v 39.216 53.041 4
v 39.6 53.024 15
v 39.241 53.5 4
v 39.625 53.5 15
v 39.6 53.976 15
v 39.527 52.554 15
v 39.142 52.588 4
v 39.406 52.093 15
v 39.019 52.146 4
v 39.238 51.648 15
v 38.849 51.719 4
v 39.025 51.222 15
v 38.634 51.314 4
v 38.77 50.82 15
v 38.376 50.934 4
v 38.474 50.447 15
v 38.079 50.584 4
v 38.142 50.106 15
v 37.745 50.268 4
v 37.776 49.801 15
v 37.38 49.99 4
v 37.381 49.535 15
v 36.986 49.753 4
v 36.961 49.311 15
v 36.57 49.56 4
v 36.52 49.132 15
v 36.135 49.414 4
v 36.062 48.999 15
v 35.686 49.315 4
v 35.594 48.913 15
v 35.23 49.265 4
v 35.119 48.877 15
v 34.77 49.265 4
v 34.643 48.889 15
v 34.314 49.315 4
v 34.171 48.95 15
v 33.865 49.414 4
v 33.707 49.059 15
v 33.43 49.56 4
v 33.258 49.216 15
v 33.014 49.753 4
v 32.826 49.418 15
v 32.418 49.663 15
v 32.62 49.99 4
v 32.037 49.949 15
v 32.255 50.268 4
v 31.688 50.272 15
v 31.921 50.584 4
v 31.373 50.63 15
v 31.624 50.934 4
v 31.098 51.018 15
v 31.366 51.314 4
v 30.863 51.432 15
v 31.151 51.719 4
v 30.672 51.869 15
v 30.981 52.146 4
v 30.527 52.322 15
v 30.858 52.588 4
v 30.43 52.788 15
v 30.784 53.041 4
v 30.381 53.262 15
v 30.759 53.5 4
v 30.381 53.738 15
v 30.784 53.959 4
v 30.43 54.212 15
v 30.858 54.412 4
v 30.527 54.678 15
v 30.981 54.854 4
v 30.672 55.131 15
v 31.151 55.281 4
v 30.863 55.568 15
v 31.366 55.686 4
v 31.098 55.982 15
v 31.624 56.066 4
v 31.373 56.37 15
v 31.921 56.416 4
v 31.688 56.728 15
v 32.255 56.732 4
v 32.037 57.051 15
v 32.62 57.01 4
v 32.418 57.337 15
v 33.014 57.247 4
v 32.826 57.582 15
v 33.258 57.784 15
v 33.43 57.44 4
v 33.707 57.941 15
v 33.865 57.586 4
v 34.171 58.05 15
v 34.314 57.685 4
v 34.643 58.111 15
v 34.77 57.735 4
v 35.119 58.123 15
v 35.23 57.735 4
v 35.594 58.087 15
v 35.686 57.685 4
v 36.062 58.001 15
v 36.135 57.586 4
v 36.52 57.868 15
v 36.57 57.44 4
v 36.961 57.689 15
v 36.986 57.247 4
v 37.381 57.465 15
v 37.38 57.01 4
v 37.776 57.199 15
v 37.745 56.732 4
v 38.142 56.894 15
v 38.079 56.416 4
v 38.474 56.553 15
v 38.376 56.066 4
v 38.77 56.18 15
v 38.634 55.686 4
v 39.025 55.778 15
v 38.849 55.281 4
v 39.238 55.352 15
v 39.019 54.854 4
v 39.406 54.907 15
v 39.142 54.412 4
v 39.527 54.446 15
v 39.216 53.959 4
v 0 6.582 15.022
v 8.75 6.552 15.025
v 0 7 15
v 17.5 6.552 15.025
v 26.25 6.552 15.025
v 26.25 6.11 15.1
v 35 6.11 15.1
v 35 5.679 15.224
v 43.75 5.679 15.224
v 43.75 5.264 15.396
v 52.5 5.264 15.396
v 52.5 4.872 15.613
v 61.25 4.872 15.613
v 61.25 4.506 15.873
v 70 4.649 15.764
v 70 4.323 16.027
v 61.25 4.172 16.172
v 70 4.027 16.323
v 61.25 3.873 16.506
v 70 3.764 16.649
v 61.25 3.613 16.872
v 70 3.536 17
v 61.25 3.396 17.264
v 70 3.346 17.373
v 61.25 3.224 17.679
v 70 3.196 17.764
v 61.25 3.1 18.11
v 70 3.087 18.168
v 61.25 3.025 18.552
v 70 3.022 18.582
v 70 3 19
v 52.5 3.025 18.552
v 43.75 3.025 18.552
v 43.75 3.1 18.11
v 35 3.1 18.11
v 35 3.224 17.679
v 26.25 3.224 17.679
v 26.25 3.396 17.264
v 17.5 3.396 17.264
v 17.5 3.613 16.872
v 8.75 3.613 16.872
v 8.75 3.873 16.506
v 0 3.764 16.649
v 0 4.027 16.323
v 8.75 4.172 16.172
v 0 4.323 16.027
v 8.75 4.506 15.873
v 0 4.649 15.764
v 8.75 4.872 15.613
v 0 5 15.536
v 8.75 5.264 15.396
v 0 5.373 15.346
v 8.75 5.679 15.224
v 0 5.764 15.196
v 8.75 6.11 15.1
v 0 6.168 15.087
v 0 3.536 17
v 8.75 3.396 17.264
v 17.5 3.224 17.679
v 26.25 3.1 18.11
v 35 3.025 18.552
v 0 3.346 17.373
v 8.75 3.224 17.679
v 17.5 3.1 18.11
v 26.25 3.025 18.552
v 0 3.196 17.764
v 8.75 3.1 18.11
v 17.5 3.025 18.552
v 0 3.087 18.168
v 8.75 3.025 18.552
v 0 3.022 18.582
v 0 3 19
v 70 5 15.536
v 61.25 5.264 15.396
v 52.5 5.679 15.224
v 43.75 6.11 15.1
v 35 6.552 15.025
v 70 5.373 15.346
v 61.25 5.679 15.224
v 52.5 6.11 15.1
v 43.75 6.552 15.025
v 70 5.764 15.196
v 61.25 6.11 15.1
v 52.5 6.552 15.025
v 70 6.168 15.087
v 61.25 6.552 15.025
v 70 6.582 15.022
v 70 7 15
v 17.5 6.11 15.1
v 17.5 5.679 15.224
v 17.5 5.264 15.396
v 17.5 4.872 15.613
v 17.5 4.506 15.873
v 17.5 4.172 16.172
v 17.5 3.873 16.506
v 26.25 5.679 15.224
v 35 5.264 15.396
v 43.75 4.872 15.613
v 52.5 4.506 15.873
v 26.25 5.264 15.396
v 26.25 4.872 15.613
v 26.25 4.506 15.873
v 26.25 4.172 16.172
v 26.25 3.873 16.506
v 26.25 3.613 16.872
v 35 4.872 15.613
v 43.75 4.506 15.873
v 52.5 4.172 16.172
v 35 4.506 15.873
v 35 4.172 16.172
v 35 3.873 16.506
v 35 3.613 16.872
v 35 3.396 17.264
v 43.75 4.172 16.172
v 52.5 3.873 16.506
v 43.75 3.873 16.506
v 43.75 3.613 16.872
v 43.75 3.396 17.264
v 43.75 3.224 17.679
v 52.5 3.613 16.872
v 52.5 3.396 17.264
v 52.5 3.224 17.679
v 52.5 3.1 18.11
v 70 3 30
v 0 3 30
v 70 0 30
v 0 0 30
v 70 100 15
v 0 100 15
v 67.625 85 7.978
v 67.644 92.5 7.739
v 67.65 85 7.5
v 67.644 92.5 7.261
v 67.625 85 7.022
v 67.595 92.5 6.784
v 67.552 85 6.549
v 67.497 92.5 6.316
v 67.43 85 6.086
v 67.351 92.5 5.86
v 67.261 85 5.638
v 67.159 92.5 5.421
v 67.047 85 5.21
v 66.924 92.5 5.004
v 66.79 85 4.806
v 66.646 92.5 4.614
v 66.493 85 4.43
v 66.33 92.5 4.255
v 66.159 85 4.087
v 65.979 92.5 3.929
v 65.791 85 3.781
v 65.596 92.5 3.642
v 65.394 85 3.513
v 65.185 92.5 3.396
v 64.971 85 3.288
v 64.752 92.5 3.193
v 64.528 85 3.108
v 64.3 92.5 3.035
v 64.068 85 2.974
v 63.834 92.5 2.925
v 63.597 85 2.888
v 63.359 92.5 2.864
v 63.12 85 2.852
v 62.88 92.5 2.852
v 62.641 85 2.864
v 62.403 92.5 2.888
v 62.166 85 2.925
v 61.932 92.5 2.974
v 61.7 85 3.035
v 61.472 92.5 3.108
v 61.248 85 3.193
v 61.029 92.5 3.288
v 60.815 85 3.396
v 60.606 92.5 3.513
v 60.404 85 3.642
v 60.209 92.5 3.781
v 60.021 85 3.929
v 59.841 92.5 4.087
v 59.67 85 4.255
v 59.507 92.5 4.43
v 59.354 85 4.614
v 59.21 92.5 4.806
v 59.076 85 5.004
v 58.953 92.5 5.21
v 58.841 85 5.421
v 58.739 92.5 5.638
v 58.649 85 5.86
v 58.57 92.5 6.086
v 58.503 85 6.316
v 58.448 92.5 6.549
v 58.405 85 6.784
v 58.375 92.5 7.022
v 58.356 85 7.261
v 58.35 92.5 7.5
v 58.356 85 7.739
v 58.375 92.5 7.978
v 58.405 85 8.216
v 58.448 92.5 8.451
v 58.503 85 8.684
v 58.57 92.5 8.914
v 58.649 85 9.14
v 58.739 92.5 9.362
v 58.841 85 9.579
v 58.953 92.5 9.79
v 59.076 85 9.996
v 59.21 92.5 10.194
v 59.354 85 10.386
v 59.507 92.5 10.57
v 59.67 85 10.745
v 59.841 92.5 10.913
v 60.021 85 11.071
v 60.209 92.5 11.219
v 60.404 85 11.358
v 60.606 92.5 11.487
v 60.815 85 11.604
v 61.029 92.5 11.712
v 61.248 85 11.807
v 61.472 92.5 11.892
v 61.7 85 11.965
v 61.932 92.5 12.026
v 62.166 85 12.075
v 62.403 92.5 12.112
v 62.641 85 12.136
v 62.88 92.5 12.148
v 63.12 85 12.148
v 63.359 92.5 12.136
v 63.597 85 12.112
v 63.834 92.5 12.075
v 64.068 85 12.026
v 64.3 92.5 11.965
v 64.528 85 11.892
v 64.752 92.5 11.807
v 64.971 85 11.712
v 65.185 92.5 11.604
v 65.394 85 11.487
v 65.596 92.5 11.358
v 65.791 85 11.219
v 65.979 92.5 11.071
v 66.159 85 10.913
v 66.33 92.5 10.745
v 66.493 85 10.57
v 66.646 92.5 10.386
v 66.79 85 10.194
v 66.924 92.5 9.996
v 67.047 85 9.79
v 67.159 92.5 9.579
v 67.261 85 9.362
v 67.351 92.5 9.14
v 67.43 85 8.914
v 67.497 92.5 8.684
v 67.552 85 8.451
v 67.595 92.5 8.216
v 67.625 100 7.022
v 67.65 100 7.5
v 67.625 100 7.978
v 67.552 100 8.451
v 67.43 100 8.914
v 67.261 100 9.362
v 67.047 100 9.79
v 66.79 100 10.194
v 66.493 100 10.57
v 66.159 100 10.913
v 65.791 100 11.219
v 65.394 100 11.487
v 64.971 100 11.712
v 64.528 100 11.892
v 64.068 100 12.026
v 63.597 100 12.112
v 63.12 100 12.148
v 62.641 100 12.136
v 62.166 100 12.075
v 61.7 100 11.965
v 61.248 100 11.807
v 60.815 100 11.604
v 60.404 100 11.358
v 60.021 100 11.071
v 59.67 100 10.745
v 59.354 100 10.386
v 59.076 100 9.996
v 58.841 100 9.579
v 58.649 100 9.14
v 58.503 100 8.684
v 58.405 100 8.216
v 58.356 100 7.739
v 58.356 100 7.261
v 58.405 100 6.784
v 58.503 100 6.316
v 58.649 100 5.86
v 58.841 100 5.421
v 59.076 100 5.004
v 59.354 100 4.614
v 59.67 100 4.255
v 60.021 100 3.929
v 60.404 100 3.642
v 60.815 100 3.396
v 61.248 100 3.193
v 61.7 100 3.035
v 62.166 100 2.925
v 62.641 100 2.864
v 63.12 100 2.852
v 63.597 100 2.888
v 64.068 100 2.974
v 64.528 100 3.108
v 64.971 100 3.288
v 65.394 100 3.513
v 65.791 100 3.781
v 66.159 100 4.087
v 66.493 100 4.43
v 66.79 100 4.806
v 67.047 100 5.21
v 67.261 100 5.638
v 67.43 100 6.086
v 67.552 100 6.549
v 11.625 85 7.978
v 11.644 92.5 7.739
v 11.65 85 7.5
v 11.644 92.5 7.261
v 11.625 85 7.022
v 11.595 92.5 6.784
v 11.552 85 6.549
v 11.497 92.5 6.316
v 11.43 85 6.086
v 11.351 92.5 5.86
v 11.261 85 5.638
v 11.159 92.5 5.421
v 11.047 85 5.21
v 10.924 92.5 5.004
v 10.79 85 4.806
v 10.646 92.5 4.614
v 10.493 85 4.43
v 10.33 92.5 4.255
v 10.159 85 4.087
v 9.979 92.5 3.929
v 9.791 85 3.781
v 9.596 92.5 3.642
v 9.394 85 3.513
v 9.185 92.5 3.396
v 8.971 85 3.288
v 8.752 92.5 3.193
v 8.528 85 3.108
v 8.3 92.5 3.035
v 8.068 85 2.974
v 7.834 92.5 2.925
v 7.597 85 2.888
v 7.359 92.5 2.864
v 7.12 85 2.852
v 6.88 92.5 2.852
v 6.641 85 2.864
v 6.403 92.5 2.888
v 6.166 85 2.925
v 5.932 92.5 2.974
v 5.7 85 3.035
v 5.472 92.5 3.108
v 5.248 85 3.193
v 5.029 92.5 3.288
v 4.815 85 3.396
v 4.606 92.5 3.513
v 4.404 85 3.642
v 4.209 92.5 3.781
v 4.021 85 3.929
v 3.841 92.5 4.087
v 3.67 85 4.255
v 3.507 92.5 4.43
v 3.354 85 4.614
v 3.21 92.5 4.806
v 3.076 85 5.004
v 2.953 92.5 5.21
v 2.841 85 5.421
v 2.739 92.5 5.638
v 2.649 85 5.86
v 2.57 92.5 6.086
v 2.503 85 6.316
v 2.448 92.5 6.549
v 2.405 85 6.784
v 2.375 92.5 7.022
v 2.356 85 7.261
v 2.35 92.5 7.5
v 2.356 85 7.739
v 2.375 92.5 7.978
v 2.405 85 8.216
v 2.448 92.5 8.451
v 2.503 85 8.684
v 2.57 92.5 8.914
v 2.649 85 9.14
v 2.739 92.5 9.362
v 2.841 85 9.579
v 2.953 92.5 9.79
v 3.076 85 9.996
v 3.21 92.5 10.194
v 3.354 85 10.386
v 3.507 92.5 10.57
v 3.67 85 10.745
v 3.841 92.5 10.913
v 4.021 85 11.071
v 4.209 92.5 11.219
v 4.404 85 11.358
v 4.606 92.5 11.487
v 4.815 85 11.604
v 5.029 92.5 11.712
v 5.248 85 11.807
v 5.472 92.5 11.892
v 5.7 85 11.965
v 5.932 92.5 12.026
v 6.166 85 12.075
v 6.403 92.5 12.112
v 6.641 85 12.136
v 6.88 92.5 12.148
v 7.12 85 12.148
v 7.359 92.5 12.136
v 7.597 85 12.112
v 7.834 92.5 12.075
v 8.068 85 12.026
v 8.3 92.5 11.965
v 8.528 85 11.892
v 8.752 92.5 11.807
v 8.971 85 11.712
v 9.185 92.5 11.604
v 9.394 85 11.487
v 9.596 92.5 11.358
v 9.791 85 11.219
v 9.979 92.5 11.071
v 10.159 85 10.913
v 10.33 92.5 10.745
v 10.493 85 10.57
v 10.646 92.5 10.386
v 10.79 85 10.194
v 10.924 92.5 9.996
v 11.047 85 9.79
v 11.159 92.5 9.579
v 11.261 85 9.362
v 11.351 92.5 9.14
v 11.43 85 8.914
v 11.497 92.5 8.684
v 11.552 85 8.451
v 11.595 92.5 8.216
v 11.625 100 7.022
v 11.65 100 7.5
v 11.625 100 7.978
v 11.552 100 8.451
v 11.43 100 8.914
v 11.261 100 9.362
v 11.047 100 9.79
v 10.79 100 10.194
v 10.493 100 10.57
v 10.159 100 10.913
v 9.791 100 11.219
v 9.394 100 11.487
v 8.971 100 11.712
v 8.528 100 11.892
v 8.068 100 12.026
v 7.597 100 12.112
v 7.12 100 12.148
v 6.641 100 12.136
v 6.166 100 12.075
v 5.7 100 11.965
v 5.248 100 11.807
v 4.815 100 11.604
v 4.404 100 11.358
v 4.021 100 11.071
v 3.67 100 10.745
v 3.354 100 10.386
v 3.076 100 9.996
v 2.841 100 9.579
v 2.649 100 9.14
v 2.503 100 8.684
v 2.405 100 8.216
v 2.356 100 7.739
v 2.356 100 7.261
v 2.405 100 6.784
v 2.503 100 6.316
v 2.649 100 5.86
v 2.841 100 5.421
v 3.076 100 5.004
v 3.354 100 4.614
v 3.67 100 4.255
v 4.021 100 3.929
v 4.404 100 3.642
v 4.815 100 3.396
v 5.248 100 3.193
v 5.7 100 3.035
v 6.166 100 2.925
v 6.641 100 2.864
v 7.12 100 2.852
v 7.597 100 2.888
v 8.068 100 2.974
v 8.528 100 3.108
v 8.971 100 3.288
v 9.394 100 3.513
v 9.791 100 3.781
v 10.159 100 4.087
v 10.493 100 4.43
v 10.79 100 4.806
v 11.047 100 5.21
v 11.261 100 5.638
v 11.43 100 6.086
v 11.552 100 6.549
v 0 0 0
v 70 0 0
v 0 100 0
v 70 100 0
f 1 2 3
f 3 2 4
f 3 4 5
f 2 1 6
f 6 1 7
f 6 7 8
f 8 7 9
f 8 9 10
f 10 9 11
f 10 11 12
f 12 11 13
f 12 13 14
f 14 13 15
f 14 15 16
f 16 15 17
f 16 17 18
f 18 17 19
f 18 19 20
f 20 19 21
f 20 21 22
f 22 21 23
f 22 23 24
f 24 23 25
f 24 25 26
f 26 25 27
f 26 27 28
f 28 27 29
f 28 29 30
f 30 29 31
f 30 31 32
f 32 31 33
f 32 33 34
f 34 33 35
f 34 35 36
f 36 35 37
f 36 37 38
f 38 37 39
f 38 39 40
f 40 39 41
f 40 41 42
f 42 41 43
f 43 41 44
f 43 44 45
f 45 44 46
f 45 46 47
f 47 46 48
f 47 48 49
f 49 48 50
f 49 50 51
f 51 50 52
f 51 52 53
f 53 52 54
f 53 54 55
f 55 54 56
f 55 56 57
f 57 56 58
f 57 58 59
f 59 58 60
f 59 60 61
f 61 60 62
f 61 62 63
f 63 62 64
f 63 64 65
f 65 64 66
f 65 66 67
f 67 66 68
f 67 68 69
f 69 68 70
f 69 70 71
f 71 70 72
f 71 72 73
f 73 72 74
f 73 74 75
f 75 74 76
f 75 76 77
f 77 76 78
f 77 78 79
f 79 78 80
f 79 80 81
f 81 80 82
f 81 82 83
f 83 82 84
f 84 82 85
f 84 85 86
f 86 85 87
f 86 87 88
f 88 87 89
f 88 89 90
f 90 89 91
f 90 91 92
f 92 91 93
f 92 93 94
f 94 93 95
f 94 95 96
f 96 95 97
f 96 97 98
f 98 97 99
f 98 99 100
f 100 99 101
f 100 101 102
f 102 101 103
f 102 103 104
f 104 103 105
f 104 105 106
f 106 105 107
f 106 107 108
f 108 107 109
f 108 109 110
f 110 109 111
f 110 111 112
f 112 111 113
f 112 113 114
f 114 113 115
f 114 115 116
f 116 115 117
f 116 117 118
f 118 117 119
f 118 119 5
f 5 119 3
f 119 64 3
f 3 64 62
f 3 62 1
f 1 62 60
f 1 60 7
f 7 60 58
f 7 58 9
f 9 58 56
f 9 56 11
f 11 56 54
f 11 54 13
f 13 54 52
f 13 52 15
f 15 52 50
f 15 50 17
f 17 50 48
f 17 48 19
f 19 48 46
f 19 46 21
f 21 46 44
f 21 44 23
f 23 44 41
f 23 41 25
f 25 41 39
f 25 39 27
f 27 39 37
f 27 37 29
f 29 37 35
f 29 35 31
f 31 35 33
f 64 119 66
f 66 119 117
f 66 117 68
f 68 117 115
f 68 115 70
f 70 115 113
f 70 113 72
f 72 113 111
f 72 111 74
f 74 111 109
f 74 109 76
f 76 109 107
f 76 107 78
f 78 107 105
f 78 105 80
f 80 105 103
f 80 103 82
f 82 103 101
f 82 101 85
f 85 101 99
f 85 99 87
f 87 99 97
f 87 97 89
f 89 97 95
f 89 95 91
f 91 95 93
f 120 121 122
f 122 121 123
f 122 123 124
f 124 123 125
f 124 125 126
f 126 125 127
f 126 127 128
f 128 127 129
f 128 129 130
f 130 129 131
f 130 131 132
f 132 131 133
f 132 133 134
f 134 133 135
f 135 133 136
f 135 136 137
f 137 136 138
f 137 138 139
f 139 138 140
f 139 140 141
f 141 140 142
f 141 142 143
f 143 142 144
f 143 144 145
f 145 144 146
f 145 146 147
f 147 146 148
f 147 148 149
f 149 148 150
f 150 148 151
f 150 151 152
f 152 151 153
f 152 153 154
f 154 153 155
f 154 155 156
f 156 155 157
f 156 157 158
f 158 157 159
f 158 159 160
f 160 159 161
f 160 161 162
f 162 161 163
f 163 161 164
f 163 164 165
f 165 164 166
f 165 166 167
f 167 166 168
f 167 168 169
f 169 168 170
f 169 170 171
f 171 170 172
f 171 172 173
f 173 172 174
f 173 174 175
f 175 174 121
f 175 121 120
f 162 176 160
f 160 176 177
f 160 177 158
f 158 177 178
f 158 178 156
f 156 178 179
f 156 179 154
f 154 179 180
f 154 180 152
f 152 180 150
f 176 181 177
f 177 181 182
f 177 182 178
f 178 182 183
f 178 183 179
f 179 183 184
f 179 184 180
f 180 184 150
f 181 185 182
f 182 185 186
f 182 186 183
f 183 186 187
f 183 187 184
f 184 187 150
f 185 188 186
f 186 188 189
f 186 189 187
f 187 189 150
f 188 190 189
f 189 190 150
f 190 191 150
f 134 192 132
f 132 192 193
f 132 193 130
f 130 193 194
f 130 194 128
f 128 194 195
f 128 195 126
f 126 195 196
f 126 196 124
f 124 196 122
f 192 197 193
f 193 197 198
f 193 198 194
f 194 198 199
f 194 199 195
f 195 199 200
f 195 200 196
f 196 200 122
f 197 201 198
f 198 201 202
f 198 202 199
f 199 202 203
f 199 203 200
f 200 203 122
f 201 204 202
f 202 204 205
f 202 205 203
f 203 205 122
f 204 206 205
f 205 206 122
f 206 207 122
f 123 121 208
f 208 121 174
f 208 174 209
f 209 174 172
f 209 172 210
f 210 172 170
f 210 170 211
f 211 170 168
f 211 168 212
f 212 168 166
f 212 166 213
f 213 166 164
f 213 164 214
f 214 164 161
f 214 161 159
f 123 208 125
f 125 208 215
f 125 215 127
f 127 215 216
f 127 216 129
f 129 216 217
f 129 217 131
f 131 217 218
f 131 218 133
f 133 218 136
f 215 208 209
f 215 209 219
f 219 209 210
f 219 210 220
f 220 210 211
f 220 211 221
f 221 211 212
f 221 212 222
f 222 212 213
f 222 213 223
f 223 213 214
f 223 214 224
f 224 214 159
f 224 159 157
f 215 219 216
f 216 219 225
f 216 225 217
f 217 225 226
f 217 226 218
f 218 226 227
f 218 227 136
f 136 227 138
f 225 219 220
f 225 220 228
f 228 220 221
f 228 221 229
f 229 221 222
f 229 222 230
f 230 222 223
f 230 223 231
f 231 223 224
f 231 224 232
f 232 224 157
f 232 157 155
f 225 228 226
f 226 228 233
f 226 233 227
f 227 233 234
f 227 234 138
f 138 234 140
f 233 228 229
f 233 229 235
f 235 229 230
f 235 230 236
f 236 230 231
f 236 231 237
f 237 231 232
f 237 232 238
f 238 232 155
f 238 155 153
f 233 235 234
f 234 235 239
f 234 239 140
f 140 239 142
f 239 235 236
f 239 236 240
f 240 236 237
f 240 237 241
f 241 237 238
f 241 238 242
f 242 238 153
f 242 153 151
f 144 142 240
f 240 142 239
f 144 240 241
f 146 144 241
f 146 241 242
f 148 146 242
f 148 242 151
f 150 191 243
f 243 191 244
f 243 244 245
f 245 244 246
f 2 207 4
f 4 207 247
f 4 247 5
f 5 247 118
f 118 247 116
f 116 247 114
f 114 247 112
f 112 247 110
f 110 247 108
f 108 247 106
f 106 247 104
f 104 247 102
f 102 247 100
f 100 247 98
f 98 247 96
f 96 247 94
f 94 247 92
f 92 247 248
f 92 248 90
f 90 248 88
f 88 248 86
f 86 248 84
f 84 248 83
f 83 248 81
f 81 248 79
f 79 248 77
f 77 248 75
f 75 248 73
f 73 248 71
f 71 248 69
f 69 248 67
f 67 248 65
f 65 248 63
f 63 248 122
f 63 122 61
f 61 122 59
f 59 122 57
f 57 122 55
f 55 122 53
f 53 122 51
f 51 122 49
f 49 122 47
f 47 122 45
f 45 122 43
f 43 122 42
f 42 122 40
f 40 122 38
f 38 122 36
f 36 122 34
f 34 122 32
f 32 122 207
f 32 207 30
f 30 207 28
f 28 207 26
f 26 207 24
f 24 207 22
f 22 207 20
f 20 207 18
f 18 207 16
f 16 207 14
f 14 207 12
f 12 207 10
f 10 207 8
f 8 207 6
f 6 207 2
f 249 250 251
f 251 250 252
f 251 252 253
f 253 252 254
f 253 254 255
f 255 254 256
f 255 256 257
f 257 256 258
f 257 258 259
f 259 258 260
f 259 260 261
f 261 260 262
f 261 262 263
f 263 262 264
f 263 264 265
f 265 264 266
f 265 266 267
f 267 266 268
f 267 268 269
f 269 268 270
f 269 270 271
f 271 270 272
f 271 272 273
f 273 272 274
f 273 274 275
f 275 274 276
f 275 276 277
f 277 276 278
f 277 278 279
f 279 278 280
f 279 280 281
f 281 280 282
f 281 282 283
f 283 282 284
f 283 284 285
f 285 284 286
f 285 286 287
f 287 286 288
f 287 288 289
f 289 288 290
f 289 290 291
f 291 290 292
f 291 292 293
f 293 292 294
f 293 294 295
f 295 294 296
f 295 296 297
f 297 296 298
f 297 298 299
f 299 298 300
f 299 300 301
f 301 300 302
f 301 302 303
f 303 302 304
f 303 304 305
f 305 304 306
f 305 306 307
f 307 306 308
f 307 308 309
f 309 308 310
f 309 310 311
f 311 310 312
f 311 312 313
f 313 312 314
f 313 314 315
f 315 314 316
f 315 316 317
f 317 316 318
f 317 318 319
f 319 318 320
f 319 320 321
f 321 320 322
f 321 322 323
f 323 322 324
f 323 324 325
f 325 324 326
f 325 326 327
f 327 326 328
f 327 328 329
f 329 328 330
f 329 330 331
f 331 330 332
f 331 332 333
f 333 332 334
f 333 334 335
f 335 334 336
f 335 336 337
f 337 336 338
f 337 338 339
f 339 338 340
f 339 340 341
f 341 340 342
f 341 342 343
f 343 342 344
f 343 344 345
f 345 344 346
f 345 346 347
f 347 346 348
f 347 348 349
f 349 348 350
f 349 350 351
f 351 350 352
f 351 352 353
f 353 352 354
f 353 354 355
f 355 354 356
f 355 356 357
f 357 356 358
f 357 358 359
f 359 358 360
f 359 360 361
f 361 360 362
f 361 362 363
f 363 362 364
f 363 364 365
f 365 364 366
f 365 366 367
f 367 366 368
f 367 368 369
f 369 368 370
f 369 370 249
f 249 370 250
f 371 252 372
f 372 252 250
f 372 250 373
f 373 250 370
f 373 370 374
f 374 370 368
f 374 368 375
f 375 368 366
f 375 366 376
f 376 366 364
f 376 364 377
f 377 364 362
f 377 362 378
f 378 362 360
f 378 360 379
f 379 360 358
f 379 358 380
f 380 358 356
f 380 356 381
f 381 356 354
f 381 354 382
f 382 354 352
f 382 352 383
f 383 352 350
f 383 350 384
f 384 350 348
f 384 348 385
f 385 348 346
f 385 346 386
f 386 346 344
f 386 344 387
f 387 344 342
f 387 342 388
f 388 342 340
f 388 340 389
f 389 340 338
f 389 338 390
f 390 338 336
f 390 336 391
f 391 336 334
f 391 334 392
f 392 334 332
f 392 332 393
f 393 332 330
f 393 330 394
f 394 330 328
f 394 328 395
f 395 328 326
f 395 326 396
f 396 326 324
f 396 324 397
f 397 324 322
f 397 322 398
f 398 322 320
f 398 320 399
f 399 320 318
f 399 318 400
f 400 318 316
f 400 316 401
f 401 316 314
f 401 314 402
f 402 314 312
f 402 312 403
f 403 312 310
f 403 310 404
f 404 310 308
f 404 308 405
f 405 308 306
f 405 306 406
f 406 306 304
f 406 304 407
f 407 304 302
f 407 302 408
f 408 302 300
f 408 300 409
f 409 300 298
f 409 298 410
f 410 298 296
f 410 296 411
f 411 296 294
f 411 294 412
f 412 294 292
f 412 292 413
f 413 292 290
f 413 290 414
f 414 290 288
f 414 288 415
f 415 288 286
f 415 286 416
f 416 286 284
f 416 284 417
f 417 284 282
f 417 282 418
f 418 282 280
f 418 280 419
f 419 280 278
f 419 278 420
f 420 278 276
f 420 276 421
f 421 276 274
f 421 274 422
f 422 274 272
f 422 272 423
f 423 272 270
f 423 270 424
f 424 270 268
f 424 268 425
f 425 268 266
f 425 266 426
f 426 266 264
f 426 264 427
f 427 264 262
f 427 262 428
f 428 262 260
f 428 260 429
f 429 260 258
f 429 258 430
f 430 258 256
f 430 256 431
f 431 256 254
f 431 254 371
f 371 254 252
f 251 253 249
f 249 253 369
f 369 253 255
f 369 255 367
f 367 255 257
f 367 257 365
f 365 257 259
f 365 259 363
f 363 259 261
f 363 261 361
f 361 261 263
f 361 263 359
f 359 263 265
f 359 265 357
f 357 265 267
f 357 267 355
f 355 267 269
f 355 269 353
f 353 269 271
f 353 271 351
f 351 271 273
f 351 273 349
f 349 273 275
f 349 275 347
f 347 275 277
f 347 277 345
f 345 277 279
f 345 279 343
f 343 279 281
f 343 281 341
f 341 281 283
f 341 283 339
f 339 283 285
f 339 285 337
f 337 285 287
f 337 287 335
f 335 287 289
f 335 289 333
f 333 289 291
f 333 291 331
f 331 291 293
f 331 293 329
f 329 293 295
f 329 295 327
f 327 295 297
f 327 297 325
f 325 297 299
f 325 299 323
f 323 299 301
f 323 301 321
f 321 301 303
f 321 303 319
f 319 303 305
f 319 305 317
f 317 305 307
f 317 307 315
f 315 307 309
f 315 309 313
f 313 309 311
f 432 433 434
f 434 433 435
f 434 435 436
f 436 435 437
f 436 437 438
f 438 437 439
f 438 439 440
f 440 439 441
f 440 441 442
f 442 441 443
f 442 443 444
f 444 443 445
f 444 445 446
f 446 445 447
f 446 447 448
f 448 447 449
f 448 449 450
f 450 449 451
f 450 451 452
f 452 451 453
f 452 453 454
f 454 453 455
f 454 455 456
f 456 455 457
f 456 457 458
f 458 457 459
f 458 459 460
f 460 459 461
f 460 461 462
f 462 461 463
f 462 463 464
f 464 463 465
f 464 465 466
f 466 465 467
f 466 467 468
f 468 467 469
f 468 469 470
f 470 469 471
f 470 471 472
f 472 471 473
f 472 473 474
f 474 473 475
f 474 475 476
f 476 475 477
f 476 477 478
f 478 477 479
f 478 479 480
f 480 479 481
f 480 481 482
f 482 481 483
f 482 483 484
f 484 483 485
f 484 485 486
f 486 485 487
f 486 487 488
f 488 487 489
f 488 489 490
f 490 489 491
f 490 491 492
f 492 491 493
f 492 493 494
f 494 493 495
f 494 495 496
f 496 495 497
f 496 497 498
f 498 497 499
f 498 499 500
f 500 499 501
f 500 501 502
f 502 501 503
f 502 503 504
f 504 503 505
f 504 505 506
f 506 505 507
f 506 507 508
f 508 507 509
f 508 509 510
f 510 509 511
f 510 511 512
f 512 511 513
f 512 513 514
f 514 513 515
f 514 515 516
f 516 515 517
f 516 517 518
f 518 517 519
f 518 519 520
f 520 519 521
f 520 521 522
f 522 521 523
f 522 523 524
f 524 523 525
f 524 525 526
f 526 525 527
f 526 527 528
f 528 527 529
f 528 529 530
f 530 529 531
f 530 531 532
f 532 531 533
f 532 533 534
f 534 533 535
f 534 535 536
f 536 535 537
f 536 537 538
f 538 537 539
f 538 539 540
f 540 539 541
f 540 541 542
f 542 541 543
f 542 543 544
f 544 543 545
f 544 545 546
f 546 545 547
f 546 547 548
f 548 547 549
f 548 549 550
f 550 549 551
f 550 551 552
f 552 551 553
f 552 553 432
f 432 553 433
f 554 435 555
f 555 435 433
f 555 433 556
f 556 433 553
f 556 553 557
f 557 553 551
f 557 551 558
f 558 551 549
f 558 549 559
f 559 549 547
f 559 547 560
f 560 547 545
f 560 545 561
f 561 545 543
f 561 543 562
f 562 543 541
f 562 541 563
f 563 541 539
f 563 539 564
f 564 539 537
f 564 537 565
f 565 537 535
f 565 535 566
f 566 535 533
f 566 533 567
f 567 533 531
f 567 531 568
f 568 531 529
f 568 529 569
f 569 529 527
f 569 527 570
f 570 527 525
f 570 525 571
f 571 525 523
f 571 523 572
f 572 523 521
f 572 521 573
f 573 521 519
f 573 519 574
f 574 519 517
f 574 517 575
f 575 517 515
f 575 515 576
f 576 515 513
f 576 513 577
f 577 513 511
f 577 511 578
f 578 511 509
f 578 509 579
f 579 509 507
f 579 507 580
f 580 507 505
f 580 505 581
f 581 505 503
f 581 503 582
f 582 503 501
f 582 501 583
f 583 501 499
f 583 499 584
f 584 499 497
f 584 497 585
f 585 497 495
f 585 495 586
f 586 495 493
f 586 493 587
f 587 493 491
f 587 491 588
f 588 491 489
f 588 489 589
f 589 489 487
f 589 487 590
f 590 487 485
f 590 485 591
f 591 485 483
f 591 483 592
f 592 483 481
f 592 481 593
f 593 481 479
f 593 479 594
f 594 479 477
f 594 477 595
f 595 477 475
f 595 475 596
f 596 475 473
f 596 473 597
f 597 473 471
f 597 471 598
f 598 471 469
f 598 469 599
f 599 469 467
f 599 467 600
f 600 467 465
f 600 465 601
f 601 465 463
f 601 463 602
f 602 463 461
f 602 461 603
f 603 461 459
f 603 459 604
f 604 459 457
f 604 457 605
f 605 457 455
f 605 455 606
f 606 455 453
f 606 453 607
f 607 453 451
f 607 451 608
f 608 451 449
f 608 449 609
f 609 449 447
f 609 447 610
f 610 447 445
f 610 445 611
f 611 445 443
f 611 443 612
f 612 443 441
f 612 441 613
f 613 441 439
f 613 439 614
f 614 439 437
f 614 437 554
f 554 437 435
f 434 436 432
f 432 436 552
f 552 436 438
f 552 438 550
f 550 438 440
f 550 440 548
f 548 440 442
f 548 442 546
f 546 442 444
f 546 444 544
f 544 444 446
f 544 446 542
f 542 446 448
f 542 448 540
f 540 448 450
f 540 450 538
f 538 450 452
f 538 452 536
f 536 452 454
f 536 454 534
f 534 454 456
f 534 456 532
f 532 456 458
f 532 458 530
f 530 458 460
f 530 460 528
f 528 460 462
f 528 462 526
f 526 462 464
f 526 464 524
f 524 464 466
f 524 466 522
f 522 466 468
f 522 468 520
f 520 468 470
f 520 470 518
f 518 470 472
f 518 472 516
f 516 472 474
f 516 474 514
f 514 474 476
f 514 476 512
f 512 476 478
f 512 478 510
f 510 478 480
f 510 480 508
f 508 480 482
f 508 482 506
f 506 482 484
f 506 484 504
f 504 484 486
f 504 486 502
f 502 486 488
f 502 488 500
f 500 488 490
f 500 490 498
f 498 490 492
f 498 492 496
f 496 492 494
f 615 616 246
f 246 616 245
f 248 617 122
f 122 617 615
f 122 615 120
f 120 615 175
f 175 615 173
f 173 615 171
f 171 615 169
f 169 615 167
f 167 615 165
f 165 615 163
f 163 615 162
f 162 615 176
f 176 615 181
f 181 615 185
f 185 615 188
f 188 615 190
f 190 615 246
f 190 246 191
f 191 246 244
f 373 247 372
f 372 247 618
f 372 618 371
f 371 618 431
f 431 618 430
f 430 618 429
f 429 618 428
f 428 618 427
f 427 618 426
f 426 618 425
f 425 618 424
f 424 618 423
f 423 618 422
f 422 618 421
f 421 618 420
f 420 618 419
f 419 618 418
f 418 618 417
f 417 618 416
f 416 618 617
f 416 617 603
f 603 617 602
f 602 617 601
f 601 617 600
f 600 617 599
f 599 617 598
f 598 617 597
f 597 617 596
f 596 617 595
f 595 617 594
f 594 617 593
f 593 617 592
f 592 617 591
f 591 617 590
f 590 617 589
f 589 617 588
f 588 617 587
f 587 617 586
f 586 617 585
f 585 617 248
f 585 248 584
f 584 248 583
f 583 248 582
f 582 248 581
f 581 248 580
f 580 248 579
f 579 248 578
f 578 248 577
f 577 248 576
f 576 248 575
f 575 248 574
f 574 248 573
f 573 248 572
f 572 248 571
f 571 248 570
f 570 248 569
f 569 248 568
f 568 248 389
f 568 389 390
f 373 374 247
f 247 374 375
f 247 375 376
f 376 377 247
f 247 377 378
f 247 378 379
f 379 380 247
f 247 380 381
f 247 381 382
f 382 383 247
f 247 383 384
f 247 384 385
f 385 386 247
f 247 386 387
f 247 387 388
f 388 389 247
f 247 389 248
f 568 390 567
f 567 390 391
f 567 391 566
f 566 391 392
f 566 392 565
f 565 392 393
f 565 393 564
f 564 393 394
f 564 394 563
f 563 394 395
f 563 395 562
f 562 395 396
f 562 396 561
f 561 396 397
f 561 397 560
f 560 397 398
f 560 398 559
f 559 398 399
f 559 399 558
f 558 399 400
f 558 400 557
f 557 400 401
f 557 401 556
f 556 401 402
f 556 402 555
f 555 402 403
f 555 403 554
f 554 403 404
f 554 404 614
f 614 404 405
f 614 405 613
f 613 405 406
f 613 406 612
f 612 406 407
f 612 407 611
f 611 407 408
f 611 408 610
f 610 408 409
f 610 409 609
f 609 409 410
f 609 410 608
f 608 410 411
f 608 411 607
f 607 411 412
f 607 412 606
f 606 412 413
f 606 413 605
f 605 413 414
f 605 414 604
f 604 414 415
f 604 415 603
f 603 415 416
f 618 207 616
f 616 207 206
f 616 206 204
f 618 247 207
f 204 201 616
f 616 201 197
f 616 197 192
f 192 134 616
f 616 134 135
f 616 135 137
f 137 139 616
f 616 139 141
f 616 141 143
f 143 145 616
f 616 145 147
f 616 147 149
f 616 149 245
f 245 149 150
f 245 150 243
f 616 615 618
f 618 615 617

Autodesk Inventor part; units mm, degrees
ref_plane "YZ Plane" through (0, 0, 0) normal (1, 0, 0) x (0, 1, 0)
ref_plane "XZ Plane" through (0, 0, 0) normal (0, 1, 0) x (-1, 0, 0)
ref_plane "XY Plane" through (0, 0, 0) normal (0, 0, 1) x (1, 0, 0)
sketch "Sketch1" plane through (0, 0, 0) normal (0, 0, 1) x (1, 0, 0)
  line L0 (0, 0) -> (70, 0)
  line L1 (70, 0) -> (70, 100)
  line L2 (70, 100) -> (0, 100)
  line L3 (0, 100) -> (0, 0)
  dimension "d0" = 70
  dimension "d1" = 100
extrude "Extrusion1" add sketch "Sketch1" along normal blind 15
sketch "Sketch3" plane through (0, 100, 0) normal (0, 1, 0) x (1, 0, 0)
  line L0 (0, 0) -> (0, -15) projected
  line L1 (0, -7.5) -> (70, -7.5) construction
  line L2 (70, 0) -> (70, -15) projected
  circle A0 centre (7, -7.5) radius 4.65
  circle A1 centre (63, -7.5) radius 4.65
  dimension "d7" = 9.3
  dimension "d8" = 9.3
  dimension "d9" = 56
  dimension "d10" = 70
  dimension "d11" = 7
extrude "Extrusion3" cut sketch "Sketch3" against normal blind 15
sketch "Sketch4" plane through (0, 0, 15) normal (0, 0, 1) x (1, 0, 0)
  line L0 (70, 0) -> (70, 100) projected
  line L1 (0, 0) -> (70, 0)
  line L2 (70, 0) -> (70, 3)
  line L3 (70, 3) -> (0, 3)
  line L4 (0, 3) -> (0, 0)
  dimension "d14" = 3
extrude "Extrusion4" add sketch "Sketch4" along normal blind 15
fillet "Fillet1" radius 4 1 edges at (35, 3, 15)
sketch "Sketch5" plane through (0, 0, 15) normal (0, 0, 1) x (1, 0, 0)
  line L0 (70, 0) -> (70, 100) projected
  line L1 (0, 0) -> (70, 0) projected
  line L2 (0, 100) -> (0, 0) projected
  line L3 (70, 100) -> (0, 100) projected
  circle A0 centre (35, 53.5) radius 4.625
  line L4 (70, 100) -> (0, 100) projected
  line L5 (35, 100) -> (35, 0)
  line L6 (0, 0) -> (70, 0) projected
  line L7 (70, 7) -> (70, 100) projected
  line L8 (70, 53.5) -> (0, 53.5)
  line L9 (0, 100) -> (0, 7) projected
  dimension "d18" = 9.25
sketch "Sketch5 outline for Extrusion5" plane through (0, 0, 15) normal (0, 0, 1) x (1, 0, 0)
  circle A0 centre (35, 53.5) radius 4.625
extrude "Extrusion5" cut sketch "Sketch5 outline for Extrusion5" against normal blind 11 draft -2
equation "\"d8\" = d7"
equation "\"d11\" = -0.5 * d9 + 0.5 * d10"
properties part number "antenna_mast_mount"
